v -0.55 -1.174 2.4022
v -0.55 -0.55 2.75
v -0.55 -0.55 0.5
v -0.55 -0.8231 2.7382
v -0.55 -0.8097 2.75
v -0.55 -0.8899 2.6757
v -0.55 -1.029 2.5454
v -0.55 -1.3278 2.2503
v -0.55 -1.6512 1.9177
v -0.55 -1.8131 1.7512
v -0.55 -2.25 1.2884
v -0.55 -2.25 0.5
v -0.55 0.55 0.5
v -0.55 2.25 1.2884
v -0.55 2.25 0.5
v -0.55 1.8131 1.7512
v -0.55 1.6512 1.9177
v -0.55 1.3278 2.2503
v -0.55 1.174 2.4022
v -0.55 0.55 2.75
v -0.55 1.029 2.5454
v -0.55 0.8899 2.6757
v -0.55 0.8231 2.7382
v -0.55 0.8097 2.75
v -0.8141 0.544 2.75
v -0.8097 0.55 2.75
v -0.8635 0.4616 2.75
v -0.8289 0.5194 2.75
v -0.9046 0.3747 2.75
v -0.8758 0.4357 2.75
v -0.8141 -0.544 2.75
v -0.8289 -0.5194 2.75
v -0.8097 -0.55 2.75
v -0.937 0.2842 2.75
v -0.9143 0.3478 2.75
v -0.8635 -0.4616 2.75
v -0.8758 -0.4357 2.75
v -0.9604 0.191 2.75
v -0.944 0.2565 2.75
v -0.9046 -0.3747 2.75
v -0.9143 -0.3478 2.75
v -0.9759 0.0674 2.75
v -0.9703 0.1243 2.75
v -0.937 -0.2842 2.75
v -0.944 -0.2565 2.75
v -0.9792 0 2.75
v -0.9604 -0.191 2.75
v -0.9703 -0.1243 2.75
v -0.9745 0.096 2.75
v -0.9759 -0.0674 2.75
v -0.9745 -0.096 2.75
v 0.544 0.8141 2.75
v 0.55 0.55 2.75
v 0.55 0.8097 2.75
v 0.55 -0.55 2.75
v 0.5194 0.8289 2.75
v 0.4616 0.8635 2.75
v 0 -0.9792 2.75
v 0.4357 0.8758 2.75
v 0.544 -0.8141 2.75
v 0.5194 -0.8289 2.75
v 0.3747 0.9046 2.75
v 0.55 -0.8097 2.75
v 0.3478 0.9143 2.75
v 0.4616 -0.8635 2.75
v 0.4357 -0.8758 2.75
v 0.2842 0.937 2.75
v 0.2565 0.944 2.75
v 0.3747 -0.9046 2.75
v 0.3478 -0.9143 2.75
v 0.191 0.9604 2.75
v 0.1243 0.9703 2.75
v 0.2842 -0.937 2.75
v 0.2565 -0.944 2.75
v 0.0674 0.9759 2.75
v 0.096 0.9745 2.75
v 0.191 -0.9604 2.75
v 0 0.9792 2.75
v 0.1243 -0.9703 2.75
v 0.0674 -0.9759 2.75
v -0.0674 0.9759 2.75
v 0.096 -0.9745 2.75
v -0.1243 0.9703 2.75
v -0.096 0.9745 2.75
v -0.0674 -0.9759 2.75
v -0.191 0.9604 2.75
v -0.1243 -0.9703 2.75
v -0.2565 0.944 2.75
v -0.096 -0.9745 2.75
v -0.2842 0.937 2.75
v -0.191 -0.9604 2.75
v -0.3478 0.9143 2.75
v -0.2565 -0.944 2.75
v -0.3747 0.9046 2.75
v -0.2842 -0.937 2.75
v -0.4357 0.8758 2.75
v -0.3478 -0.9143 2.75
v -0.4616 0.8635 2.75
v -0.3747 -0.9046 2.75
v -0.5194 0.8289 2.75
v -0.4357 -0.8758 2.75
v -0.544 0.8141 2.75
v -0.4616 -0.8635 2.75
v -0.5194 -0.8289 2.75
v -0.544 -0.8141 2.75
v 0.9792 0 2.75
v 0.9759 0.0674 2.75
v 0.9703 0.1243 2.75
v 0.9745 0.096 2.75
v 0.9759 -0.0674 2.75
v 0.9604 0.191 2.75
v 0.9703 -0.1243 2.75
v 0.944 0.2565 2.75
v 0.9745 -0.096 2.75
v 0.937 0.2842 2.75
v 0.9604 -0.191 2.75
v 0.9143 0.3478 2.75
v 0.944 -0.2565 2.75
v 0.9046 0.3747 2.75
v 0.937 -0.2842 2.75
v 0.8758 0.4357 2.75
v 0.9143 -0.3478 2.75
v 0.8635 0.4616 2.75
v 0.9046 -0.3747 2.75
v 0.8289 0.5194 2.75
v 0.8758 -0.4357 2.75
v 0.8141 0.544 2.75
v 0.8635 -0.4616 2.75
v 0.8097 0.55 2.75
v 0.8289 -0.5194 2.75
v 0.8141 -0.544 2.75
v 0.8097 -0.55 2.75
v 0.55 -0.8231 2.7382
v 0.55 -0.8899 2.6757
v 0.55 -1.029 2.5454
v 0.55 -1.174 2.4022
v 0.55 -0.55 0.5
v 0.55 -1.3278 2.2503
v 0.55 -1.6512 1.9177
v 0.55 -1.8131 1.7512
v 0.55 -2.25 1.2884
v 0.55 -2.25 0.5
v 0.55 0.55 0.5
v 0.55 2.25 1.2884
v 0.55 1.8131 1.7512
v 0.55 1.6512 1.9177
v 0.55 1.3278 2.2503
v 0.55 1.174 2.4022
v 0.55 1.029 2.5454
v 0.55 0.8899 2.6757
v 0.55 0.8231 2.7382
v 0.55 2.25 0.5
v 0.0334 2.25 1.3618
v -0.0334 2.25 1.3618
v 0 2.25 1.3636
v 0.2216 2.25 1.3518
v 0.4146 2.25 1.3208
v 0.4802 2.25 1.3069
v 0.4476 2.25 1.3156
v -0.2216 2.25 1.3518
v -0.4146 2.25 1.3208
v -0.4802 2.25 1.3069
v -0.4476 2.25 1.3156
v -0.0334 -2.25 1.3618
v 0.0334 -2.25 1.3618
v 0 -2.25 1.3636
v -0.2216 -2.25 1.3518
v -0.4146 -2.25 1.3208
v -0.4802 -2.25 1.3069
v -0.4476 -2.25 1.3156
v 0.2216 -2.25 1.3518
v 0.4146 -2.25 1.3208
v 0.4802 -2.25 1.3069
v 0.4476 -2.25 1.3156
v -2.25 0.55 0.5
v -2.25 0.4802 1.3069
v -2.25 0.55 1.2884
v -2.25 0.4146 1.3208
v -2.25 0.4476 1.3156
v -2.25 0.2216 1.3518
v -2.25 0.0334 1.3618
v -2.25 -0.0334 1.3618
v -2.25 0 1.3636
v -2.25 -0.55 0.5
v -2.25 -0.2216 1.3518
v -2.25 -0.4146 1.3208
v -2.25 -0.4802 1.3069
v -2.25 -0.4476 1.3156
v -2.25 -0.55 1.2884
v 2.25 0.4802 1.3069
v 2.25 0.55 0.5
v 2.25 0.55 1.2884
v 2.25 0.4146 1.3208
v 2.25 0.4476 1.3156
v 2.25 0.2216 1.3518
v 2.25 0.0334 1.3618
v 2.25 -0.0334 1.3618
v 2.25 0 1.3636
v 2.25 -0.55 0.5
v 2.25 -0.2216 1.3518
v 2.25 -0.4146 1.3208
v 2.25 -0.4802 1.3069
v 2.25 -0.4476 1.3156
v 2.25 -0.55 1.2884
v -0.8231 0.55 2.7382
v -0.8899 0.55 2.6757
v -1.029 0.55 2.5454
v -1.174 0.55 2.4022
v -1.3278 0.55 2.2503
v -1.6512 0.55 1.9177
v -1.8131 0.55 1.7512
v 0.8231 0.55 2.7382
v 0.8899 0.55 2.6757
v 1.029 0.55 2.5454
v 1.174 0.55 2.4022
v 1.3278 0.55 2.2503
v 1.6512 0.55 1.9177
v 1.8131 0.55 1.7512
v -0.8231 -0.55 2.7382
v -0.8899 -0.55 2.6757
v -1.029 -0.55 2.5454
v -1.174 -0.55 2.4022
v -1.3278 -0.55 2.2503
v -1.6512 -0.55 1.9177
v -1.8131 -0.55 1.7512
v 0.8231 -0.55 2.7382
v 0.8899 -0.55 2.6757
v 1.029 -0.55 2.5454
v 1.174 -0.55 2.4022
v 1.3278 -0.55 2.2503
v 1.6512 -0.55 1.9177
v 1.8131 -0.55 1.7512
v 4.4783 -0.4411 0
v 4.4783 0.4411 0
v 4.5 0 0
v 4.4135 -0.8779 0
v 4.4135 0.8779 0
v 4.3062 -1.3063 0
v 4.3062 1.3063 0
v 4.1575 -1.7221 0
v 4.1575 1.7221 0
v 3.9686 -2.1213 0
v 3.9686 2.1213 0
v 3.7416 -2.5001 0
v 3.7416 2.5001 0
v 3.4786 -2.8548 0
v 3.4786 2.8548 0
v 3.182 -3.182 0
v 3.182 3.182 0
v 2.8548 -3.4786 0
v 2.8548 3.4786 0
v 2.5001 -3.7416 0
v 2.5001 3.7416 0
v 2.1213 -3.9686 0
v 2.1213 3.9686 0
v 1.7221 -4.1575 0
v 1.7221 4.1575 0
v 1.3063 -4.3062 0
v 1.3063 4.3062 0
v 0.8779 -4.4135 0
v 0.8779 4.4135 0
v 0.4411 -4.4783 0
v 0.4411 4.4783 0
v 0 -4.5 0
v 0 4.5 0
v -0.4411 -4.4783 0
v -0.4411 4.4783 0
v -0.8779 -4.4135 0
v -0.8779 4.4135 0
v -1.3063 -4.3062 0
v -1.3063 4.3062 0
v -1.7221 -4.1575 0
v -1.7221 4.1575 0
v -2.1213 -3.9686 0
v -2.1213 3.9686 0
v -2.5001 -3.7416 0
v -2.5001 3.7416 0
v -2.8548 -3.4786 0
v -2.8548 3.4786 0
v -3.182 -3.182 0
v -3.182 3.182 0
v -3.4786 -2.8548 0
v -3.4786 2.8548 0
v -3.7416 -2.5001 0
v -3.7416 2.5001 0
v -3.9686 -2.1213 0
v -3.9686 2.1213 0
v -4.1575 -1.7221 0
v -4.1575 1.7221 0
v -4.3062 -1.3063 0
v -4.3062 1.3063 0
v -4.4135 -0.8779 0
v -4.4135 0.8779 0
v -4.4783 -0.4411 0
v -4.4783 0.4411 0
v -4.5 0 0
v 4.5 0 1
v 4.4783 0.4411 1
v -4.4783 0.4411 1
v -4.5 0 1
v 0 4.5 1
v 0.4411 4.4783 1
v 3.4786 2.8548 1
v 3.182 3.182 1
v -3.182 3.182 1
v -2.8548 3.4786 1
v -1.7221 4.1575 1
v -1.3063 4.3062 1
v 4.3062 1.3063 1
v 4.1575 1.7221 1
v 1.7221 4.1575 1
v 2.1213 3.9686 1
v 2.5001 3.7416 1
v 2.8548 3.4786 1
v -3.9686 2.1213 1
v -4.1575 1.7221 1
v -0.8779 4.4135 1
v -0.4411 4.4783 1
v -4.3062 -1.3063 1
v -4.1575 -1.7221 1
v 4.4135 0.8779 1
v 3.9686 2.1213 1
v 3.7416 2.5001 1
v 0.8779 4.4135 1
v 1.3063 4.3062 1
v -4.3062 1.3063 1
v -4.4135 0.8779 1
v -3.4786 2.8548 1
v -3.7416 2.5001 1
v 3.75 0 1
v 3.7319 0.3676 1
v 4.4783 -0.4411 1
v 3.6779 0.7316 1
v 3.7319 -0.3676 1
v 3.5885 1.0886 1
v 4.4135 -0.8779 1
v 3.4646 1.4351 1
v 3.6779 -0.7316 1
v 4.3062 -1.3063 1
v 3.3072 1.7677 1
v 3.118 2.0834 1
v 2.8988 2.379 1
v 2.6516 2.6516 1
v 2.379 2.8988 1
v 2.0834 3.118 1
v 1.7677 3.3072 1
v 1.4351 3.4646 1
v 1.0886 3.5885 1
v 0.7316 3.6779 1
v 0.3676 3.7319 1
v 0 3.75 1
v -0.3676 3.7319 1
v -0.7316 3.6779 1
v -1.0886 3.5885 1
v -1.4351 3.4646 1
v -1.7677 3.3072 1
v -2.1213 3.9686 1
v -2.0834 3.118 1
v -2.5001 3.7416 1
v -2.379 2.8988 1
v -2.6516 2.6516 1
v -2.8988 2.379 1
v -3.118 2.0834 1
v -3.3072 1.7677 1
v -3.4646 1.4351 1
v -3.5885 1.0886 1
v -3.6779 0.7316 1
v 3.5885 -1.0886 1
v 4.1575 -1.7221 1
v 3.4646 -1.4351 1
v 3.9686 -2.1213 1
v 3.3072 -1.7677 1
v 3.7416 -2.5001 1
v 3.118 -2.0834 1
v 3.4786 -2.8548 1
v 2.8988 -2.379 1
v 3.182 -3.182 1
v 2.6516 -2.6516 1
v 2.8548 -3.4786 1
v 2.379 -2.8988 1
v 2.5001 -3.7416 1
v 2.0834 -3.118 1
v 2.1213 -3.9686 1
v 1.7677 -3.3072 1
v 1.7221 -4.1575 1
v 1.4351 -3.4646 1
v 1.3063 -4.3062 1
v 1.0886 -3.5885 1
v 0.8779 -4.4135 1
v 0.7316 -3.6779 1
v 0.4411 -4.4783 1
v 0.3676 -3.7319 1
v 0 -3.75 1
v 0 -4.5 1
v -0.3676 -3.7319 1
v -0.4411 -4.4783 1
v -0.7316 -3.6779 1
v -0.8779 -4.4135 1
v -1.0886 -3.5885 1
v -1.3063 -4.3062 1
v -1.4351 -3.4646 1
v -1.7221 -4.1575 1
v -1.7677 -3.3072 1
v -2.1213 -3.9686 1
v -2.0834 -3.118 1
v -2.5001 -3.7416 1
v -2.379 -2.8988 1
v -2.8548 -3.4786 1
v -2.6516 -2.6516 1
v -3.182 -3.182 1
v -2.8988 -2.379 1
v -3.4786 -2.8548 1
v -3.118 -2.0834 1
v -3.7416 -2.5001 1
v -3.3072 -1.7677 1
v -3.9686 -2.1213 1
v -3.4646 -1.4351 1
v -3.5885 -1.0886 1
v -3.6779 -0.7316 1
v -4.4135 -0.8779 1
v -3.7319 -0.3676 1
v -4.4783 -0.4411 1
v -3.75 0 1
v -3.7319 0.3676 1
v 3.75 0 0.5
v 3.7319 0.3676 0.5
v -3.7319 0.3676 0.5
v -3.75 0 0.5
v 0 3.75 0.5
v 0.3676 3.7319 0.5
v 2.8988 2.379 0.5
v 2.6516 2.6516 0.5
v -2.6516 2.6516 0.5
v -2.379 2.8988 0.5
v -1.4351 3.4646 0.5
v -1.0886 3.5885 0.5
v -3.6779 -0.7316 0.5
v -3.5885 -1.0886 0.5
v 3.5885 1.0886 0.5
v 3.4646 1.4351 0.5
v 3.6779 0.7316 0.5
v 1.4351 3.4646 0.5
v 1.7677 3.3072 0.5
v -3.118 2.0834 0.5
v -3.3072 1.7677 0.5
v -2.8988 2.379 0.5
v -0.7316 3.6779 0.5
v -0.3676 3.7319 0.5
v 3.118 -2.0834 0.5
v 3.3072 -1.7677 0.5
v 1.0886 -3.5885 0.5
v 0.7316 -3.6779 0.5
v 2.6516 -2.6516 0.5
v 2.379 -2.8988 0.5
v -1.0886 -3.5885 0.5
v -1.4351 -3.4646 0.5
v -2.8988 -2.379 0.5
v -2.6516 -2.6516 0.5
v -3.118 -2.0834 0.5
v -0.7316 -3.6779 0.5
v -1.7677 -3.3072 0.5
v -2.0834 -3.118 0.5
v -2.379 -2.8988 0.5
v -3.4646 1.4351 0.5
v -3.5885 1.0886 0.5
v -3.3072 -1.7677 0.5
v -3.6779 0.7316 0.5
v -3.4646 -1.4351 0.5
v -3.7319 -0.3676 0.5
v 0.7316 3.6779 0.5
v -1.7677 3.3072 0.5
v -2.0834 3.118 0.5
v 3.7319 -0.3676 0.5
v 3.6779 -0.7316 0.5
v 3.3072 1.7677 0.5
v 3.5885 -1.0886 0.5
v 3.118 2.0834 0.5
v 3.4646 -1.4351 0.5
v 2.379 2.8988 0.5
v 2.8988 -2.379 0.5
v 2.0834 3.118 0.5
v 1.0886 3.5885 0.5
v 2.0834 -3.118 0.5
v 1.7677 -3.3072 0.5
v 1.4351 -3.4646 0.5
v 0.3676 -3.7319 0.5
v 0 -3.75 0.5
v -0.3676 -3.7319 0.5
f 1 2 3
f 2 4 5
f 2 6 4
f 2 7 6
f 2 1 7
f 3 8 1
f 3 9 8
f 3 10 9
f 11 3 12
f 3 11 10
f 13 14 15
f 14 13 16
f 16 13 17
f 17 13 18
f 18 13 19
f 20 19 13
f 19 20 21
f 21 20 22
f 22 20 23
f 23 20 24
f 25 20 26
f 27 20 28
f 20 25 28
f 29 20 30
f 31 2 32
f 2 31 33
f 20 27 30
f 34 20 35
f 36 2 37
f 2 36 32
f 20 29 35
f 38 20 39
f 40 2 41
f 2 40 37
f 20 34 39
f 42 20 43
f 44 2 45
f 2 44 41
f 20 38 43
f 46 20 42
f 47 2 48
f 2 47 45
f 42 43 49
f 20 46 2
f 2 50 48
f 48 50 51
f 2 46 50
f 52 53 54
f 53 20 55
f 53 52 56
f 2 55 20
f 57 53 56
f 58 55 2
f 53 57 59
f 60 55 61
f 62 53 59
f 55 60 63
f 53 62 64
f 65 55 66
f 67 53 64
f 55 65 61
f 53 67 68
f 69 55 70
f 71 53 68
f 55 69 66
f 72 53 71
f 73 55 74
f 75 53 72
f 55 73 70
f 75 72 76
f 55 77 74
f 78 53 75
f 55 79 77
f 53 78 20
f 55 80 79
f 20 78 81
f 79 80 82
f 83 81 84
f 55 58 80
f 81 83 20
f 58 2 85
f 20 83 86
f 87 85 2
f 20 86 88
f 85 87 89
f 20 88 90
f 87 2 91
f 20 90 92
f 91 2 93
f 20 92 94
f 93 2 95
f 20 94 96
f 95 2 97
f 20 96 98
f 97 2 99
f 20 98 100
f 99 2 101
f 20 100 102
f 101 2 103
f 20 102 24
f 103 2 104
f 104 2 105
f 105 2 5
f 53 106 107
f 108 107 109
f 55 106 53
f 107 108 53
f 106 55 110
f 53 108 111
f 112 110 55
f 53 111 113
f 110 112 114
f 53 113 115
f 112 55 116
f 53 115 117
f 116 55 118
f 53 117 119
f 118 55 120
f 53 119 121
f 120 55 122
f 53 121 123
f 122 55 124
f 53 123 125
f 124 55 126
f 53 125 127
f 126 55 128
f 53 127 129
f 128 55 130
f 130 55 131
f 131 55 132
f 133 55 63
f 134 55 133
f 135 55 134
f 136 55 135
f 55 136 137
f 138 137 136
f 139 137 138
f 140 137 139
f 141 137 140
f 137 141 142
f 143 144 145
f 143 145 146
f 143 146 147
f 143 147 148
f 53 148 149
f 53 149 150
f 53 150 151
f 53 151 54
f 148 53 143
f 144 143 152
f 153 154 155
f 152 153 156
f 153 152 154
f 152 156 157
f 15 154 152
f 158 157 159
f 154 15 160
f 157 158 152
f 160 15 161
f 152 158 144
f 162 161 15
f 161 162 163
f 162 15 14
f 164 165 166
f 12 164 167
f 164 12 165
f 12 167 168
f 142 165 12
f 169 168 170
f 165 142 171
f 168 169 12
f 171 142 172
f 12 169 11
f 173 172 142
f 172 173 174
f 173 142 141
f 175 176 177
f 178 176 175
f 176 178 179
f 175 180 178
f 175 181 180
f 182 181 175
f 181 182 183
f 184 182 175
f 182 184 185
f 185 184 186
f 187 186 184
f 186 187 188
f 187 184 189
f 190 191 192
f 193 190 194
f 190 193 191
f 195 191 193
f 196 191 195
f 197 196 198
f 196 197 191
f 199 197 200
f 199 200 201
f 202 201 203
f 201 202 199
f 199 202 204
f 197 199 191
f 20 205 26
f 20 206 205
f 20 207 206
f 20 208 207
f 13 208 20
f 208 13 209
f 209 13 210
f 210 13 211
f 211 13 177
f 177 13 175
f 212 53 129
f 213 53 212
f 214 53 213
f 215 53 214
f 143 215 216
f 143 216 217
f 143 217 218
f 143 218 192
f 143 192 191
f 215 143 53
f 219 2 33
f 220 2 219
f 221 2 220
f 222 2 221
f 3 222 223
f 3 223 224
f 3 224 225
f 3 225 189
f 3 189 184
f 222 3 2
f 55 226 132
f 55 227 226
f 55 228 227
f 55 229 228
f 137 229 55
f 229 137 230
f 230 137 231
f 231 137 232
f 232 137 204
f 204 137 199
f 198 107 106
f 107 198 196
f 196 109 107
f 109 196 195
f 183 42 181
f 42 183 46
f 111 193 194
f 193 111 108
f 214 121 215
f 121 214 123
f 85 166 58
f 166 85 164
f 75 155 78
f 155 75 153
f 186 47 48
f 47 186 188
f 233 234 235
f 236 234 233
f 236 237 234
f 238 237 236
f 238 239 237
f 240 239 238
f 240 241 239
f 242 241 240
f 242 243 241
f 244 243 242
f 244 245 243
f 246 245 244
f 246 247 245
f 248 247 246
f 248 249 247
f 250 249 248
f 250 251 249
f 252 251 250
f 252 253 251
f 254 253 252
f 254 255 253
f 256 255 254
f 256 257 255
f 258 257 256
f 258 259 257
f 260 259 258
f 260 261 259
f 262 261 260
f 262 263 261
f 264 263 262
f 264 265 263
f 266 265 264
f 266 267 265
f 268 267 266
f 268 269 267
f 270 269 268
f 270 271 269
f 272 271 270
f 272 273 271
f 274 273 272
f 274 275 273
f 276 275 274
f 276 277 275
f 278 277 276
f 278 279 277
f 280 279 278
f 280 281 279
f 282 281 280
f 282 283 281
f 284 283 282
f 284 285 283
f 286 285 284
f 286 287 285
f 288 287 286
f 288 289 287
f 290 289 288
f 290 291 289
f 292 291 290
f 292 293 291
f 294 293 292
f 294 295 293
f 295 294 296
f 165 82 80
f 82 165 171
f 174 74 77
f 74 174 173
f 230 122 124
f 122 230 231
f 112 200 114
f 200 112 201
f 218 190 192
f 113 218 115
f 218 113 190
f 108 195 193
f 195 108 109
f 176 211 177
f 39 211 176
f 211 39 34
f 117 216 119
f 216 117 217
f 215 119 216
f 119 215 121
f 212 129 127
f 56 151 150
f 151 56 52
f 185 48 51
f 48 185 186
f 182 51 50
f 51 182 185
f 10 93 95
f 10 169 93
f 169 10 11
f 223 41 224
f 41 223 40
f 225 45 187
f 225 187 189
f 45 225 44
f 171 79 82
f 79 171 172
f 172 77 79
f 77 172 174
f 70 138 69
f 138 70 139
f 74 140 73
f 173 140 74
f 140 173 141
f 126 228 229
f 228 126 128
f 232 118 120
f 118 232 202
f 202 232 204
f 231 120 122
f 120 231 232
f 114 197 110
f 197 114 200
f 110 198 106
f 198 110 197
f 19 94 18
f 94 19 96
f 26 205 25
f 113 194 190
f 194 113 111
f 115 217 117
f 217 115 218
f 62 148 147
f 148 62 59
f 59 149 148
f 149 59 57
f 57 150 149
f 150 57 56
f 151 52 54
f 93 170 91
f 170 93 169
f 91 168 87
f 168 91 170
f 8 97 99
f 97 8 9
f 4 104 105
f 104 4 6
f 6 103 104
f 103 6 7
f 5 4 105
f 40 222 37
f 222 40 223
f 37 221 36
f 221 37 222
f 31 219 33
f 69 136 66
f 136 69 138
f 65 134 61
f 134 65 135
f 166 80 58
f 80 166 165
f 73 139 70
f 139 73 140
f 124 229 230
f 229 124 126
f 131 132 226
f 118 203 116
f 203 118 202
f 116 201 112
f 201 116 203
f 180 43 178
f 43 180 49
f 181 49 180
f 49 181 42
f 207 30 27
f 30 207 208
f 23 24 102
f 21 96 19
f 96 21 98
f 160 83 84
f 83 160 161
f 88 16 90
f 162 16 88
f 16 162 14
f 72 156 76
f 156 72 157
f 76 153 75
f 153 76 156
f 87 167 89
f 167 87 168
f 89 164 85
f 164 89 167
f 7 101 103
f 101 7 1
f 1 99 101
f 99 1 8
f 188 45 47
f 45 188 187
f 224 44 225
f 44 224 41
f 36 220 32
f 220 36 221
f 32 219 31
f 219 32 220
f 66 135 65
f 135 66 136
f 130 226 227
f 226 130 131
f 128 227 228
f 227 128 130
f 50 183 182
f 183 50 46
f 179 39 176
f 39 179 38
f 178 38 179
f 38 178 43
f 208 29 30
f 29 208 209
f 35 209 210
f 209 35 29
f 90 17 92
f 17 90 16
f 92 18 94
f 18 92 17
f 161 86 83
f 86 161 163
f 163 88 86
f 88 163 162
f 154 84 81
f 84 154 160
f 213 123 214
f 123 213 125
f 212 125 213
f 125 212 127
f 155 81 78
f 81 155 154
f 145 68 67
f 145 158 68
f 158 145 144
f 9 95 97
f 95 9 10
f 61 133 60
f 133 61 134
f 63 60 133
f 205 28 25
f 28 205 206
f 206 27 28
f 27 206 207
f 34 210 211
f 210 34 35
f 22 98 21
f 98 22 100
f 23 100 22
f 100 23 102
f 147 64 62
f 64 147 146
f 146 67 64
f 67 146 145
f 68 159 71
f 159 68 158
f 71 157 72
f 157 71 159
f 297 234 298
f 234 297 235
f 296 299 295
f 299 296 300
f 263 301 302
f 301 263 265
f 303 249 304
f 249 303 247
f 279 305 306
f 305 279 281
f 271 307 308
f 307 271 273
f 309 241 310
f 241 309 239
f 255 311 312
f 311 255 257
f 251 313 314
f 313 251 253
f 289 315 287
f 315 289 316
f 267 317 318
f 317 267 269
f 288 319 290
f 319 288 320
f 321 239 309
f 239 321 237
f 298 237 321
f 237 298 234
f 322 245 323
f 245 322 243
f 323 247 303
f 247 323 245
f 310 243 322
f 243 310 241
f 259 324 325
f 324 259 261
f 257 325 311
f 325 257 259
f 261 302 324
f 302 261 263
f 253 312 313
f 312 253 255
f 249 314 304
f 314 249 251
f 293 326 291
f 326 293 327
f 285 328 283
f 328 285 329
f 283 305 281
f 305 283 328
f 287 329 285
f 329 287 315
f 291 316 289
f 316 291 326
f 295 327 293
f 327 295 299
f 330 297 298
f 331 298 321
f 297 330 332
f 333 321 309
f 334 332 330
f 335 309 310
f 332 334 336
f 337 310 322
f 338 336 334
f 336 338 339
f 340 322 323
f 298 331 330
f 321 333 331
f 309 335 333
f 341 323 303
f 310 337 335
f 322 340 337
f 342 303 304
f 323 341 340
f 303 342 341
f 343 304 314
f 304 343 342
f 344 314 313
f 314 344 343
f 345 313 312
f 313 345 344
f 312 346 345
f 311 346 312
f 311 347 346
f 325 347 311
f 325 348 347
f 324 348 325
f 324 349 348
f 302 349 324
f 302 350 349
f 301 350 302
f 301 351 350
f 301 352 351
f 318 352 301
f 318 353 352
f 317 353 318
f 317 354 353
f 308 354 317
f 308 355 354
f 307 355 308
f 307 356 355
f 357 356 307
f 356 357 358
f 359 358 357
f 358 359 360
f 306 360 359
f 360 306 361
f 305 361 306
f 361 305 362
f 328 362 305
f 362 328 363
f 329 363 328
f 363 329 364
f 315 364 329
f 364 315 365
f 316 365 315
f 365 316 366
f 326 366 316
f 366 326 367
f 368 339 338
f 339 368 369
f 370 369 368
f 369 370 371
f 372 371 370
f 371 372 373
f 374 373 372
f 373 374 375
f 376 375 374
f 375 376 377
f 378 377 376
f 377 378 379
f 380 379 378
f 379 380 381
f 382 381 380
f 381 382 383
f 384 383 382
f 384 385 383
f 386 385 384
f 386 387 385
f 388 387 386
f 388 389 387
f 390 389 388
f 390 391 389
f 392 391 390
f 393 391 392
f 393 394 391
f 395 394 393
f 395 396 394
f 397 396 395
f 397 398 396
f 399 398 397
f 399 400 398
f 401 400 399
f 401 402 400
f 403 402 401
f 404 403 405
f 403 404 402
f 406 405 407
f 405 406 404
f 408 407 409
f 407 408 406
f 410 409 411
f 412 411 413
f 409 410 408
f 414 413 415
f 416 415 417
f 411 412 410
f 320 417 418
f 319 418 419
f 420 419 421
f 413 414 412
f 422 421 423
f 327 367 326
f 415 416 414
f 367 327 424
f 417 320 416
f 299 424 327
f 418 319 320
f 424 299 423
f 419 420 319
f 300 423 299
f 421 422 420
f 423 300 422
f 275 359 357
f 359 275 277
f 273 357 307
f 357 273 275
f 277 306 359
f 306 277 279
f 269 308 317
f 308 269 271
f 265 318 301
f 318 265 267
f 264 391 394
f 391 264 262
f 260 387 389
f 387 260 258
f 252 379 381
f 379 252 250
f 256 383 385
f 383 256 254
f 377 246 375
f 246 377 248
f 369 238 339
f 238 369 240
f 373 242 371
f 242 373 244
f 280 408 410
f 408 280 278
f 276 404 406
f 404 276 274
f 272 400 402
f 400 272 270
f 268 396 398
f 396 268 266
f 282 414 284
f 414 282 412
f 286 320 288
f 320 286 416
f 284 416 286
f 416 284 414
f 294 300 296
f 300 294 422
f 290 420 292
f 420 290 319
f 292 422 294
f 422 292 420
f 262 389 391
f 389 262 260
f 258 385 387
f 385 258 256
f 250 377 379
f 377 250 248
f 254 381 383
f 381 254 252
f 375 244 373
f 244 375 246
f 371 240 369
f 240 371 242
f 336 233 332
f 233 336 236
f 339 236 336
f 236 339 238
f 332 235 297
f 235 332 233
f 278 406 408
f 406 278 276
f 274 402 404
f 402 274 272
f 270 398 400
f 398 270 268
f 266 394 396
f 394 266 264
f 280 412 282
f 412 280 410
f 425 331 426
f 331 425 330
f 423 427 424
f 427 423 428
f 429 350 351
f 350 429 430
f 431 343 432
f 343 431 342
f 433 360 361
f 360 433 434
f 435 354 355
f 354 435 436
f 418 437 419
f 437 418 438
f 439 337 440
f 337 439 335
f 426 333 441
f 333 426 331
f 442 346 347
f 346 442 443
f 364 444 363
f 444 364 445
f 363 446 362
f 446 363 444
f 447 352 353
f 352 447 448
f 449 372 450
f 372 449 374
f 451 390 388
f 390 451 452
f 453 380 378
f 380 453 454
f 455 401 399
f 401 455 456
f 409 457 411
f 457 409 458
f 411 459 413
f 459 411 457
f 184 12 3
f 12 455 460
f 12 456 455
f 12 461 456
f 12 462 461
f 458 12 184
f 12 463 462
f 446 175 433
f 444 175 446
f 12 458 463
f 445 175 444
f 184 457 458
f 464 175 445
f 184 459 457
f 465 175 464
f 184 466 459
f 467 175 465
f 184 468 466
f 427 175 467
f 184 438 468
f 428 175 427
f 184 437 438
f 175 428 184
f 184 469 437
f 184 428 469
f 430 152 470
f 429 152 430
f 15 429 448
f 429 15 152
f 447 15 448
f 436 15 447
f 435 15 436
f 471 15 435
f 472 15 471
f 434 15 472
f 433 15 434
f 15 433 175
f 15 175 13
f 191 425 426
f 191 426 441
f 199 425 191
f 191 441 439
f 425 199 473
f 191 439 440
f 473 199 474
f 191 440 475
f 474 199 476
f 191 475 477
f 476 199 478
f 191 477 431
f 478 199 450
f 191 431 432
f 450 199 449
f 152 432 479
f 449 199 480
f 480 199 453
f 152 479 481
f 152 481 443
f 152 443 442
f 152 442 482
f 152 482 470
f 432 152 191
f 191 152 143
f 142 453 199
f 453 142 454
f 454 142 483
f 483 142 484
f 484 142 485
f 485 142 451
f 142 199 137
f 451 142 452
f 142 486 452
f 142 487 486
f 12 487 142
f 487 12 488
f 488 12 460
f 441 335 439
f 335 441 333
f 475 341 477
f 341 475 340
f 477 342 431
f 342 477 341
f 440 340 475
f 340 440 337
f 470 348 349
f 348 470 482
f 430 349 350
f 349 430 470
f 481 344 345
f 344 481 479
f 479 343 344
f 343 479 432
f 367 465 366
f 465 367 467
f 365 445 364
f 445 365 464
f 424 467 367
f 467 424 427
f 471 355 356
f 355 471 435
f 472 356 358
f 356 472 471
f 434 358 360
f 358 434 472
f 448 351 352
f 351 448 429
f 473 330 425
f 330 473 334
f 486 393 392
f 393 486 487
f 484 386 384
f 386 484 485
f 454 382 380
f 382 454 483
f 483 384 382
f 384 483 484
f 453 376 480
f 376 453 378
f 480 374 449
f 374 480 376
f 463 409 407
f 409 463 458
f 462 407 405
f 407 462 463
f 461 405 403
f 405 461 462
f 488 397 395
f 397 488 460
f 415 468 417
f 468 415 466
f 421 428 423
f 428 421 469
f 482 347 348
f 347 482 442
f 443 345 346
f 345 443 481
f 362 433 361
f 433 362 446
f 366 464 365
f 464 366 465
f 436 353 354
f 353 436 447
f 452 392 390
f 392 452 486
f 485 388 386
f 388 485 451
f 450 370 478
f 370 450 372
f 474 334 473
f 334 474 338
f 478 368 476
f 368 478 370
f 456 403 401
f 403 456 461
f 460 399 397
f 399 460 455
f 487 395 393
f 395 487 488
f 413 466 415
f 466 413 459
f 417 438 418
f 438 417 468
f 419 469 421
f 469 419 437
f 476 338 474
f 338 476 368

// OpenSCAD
$fn=64;
difference() {
    cylinder(d=9, h=1);
    translate([0,0,0.5]) cylinder(d=7.5, h=0.55);
}


translate ([0,0,1]) intersection() {
    union() {
        cube([1.1,4.5,3.5], center=true);
        cube([4.5,1.1,3.5], center=true);
    }
    translate([0,0,-1]) cylinder(d1=7, d2=1.5, h=3);
}
